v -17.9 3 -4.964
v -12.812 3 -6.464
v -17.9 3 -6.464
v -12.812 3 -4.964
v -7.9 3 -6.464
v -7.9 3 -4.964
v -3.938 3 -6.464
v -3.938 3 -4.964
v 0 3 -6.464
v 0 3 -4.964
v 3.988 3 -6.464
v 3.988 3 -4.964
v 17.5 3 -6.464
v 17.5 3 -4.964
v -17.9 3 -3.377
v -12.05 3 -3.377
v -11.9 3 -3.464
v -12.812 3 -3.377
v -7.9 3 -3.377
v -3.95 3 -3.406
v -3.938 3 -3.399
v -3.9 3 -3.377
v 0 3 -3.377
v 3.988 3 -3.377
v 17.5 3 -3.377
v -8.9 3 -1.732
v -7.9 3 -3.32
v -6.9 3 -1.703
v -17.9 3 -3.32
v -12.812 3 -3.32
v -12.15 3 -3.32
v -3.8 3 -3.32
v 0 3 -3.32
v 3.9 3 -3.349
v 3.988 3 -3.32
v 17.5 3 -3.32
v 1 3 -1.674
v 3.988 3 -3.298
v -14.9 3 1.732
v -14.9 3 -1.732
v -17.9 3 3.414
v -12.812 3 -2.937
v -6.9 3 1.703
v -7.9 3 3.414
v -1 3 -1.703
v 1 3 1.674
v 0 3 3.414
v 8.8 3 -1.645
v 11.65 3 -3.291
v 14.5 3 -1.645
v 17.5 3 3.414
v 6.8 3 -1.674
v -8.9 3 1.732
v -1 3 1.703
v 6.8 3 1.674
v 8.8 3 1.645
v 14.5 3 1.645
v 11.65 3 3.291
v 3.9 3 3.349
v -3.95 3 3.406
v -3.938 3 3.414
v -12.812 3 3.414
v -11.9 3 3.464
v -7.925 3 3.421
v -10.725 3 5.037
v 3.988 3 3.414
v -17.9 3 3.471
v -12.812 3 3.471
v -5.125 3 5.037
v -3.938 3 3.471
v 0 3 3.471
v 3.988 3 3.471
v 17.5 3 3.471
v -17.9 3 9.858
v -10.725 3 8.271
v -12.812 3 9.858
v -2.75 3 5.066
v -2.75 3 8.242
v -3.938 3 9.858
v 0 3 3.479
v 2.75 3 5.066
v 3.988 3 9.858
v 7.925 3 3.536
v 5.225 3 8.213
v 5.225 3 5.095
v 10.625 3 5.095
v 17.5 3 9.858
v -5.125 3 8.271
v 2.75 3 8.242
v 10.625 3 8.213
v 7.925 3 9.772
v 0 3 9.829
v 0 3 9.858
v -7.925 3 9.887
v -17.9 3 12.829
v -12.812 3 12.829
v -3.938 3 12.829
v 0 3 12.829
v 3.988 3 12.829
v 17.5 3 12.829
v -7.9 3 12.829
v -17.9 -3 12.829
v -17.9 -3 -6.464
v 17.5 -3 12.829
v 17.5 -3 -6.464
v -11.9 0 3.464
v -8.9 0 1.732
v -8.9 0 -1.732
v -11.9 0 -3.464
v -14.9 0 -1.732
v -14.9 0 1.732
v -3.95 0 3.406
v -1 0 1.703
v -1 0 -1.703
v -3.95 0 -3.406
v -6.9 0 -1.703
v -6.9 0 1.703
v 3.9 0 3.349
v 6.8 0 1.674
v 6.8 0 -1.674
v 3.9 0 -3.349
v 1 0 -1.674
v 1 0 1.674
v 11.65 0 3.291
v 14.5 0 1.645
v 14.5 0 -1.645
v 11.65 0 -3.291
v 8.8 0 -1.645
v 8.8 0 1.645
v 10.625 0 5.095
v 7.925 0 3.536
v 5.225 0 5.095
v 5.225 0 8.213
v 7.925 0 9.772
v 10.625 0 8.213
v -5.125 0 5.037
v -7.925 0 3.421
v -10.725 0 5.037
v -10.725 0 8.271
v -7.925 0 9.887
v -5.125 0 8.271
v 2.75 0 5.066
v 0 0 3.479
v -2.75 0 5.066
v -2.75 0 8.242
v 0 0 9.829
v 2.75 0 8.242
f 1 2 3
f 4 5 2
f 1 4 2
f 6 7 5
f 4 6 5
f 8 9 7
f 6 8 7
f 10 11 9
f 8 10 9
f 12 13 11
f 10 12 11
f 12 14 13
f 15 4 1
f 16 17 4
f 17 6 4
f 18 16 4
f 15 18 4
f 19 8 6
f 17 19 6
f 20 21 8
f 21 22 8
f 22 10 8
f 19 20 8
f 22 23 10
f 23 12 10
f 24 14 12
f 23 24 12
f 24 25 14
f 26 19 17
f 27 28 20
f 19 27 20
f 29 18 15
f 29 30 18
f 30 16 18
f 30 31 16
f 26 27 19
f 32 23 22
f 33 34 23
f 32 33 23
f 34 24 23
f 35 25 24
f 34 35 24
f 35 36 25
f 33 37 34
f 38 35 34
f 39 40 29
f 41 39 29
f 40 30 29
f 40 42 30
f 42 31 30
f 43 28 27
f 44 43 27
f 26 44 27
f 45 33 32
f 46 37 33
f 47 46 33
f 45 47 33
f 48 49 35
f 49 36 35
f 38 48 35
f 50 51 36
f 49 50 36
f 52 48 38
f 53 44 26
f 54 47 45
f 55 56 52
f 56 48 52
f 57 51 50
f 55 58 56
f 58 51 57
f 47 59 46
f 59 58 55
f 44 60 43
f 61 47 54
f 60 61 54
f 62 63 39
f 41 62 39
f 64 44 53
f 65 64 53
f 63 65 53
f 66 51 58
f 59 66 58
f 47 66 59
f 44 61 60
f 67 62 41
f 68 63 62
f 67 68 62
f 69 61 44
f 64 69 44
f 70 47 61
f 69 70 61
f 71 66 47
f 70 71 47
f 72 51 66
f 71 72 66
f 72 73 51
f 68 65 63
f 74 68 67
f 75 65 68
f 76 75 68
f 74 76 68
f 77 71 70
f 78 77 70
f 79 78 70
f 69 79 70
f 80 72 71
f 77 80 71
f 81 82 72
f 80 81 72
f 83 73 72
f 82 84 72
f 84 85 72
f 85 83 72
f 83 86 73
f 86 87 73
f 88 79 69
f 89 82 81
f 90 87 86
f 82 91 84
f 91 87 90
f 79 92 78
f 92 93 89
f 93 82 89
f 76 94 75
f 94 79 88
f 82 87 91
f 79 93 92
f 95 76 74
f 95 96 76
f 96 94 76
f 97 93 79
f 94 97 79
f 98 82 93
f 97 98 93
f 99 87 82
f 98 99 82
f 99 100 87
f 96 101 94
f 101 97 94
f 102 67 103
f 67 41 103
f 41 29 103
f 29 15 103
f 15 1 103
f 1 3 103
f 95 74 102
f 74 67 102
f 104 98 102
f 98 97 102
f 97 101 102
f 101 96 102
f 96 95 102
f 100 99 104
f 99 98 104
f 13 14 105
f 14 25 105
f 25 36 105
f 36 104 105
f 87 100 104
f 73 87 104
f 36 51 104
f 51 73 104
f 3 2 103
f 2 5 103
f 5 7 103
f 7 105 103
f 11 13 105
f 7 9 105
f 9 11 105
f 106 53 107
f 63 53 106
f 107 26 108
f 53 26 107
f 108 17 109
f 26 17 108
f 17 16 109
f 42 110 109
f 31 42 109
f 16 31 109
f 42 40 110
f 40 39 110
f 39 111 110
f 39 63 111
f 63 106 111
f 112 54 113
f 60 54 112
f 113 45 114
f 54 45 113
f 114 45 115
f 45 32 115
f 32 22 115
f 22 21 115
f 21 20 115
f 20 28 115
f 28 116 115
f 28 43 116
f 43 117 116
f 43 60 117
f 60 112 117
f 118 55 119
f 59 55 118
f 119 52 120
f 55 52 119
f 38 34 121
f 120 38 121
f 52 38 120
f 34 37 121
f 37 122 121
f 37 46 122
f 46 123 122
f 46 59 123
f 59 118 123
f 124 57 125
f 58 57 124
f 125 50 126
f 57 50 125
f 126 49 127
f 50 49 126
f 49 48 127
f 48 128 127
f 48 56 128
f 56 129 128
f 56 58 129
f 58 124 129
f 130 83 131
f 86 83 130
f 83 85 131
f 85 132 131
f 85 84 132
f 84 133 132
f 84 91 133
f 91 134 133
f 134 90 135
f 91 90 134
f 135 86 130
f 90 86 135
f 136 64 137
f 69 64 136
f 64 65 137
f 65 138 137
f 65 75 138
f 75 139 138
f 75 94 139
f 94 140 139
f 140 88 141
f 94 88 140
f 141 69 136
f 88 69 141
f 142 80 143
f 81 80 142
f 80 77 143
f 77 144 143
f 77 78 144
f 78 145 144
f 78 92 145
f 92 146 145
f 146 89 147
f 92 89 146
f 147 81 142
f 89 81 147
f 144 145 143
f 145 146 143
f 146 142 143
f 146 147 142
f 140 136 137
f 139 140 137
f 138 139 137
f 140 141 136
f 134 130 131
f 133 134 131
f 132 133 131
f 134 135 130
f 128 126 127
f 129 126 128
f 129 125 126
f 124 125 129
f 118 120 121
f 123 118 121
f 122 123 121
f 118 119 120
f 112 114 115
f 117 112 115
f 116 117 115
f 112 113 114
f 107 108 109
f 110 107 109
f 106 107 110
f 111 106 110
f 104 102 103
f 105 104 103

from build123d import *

# Parameters (mm, degrees)
SKETCH1_W           = 35.4
SKETCH1_H           = 19.293489948
BOSS_EXTRUDE1_DEPTH = 3
SKETCH1_2_W         = 35.4
SKETCH1_2_H         = 19.293489948
BOSS_EXTRUDE2_DEPTH = 3


with BuildPart() as part:
    # Sketch1 → Boss-Extrude1 (new body)
    with BuildSketch(Plane(origin=(0, 0, 0), x_dir=(1, 0, 0), z_dir=(0, 1, 0))):
        with Locations((-0.2, -3.182643359)):
            Rectangle(SKETCH1_W, SKETCH1_H)
        Polygon((-8.9, -1.732050808), (-8.9, 1.732050808), (-11.9, 3.464101615), (-14.9, 1.732050808), (-14.9, -1.732050808), (-11.9, -3.464101615), align=None, mode=Mode.SUBTRACT)
        Polygon((-1, -1.703183294), (-1, 1.703183294), (-3.95, 3.406366588), (-6.9, 1.703183294), (-6.9, -1.703183294), (-3.95, -3.406366588), align=None, mode=Mode.SUBTRACT)
        Polygon((6.8, -1.674315781), (6.8, 1.674315781), (3.9, 3.348631561), (1, 1.674315781), (1, -1.674315781), (3.9, -3.348631561), align=None, mode=Mode.SUBTRACT)
        Polygon((14.5, -1.645448267), (14.5, 1.645448267), (11.65, 3.290896534), (8.8, 1.645448267), (8.8, -1.645448267), (11.65, -3.290896534), align=None, mode=Mode.SUBTRACT)
        Polygon((-7.925, -3.420800345), (-10.725, -5.037381099), (-10.725, -8.270542606), (-7.925, -9.88712336), (-5.125, -8.270542606), (-5.125, -5.037381099), align=None, mode=Mode.SUBTRACT)
        Polygon((7.925, -3.536270399), (5.225, -5.095116126), (5.225, -8.212807579), (7.925, -9.771653306), (10.625, -8.212807579), (10.625, -5.095116126), align=None, mode=Mode.SUBTRACT)
        Polygon((0, -3.478535372), (-2.75, -5.066248612), (-2.75, -8.241675093), (0, -9.829388333), (2.75, -8.241675093), (2.75, -5.066248612), align=None, mode=Mode.SUBTRACT)
    extrude(amount=BOSS_EXTRUDE1_DEPTH)

    # Sketch1<2> → Boss-Extrude2 (add)
    with BuildSketch(Plane(origin=(0, 0, 0), x_dir=(1, 0, 0), z_dir=(0, 1, 0))):
        with Locations((-0.2, -3.182643359)):
            Rectangle(SKETCH1_2_W, SKETCH1_2_H)
    extrude(amount=-BOSS_EXTRUDE2_DEPTH)


solid = part.part
